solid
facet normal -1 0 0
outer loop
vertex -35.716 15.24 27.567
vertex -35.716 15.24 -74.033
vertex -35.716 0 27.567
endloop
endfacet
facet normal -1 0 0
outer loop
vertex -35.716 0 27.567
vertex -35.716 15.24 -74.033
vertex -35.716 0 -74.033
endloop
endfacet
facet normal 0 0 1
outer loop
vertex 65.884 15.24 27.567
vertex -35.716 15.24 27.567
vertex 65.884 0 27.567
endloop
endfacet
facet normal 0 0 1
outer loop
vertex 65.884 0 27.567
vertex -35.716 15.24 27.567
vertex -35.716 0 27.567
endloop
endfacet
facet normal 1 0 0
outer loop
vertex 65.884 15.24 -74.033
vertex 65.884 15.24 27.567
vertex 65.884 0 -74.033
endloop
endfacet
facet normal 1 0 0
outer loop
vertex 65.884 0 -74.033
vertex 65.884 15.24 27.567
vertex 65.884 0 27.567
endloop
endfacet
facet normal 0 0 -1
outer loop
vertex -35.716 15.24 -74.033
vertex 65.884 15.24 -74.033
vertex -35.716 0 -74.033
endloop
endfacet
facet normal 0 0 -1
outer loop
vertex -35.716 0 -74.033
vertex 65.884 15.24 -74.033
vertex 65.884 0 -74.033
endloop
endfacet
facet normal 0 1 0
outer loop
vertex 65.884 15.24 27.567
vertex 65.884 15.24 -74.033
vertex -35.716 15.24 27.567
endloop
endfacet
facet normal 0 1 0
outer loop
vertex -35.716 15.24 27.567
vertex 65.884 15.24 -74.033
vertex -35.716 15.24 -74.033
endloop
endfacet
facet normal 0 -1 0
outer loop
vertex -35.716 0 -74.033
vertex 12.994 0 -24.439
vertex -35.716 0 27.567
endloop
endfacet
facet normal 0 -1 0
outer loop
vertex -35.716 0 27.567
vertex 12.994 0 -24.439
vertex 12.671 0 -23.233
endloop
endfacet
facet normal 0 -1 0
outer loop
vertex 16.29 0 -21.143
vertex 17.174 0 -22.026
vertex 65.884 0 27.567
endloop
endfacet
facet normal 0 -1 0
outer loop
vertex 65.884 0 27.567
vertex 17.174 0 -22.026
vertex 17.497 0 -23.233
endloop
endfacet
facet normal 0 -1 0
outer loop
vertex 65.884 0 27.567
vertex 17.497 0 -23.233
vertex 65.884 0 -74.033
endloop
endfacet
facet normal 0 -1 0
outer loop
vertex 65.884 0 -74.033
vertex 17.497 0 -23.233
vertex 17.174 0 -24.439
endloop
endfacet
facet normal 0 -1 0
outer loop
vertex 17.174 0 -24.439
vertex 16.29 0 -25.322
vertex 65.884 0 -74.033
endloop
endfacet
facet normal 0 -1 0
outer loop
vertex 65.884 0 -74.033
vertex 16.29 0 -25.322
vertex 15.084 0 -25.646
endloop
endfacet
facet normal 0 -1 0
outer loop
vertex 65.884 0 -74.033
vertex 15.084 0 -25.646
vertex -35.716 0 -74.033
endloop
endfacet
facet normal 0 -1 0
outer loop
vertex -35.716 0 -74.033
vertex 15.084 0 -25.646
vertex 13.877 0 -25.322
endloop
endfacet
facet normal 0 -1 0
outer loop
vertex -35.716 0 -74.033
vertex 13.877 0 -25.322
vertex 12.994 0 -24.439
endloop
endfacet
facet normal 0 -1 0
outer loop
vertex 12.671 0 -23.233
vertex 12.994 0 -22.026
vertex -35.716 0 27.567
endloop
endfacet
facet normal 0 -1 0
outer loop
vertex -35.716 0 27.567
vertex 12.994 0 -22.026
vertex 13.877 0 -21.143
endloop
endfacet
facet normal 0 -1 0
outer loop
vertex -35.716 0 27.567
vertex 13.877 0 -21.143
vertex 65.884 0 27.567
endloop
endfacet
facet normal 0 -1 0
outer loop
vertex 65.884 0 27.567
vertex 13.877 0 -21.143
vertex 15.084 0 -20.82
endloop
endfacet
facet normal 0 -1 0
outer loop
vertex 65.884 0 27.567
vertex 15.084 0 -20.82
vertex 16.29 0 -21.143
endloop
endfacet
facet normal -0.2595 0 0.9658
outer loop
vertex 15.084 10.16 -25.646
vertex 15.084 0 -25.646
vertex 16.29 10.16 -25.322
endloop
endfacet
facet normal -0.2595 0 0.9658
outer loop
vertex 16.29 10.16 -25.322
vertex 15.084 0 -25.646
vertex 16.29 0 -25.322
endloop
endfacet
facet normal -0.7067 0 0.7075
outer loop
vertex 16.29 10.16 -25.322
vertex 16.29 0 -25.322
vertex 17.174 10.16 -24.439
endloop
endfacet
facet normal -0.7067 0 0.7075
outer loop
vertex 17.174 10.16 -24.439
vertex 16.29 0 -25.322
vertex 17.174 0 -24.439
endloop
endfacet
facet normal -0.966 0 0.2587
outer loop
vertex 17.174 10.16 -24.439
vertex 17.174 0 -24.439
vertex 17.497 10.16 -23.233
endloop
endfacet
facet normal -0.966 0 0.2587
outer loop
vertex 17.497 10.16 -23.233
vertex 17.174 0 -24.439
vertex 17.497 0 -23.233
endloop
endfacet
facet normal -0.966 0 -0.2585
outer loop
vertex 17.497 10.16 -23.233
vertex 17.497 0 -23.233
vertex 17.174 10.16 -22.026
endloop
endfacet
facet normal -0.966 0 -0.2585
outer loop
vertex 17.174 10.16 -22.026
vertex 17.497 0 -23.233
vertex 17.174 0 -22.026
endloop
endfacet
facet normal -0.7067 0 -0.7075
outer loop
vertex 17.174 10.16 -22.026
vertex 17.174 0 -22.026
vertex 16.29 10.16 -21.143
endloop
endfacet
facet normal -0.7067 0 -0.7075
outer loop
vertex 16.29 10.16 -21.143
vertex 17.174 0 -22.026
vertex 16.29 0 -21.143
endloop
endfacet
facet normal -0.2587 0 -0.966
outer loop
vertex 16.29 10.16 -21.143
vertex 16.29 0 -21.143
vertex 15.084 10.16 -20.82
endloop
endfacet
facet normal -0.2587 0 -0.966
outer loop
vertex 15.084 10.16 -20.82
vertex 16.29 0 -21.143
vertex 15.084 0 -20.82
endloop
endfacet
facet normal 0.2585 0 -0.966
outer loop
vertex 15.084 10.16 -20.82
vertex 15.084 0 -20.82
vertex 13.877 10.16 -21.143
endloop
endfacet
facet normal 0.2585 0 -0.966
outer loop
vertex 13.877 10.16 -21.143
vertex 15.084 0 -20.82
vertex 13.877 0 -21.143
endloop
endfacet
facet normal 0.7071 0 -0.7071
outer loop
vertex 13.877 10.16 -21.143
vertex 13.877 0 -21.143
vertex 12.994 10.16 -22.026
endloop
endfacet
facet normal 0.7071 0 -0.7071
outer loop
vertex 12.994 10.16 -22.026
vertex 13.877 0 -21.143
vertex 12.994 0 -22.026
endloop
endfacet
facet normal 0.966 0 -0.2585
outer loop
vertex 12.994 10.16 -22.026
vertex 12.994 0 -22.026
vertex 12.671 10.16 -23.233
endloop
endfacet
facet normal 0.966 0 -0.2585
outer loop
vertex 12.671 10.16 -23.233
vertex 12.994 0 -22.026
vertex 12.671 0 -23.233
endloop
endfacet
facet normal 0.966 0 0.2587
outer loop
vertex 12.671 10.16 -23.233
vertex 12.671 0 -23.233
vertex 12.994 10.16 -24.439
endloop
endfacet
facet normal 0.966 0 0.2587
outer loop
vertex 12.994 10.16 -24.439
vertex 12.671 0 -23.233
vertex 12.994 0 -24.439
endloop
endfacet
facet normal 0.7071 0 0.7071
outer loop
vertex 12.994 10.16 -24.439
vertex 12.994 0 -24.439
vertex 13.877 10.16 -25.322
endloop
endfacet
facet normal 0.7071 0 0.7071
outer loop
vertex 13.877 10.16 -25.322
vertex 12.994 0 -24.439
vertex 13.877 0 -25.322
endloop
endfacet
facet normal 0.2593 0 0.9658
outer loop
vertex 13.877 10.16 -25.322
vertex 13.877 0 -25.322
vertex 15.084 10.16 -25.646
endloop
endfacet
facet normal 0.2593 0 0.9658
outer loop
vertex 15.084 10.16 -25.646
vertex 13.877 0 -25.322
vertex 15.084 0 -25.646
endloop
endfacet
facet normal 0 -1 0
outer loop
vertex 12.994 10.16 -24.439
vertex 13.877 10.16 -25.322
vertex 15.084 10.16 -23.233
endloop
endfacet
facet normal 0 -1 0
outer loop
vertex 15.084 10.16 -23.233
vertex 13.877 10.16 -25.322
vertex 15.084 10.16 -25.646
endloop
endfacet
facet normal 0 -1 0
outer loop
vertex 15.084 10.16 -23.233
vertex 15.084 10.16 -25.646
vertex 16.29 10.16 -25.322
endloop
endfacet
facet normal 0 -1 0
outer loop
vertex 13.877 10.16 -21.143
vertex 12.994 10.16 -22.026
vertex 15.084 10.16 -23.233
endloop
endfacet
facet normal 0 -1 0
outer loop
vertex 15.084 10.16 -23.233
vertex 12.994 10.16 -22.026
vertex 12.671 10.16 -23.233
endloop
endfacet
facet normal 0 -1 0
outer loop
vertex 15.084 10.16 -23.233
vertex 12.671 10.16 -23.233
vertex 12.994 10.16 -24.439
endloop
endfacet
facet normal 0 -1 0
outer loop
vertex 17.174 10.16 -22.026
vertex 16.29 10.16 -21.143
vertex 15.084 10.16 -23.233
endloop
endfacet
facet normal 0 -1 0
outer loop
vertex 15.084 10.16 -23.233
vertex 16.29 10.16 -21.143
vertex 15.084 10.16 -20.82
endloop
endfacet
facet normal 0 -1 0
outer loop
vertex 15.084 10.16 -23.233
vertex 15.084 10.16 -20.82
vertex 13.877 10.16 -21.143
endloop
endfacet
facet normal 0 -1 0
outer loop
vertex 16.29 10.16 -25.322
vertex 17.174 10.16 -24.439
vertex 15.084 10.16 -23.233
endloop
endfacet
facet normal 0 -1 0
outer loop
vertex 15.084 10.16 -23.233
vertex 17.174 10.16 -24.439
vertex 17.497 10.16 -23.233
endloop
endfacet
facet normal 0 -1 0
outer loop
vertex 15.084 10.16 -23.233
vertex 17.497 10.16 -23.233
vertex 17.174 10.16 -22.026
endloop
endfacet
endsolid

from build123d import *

# Parameters (mm, degrees)
SKETCH1_W           = 101.6
SKETCH1_H           = 101.6
BOSS_EXTRUDE1_DEPTH = 15.24
SKETCH2_R           = 2.413
CUT_EXTRUDE1_DEPTH  = 10.16


with BuildPart() as part:
    # Sketch1 → Boss-Extrude1 (new body)
    with BuildSketch(Plane(origin=(0, 0, 0), x_dir=(1, 0, 0), z_dir=(0, 1, 0))):
        with Locations((15.083959044, 23.232764505)):
            Rectangle(SKETCH1_W, SKETCH1_H)
    extrude(amount=BOSS_EXTRUDE1_DEPTH)

    # Sketch2 → Cut-Extrude1 (cut)
    with BuildSketch(Plane.XZ):
        with Locations(Location((15.083959044, -23.232764505, 0), (0, 0, 270))):
            Circle(SKETCH2_R)
    extrude(amount=-CUT_EXTRUDE1_DEPTH, mode=Mode.SUBTRACT)


solid = part.part
